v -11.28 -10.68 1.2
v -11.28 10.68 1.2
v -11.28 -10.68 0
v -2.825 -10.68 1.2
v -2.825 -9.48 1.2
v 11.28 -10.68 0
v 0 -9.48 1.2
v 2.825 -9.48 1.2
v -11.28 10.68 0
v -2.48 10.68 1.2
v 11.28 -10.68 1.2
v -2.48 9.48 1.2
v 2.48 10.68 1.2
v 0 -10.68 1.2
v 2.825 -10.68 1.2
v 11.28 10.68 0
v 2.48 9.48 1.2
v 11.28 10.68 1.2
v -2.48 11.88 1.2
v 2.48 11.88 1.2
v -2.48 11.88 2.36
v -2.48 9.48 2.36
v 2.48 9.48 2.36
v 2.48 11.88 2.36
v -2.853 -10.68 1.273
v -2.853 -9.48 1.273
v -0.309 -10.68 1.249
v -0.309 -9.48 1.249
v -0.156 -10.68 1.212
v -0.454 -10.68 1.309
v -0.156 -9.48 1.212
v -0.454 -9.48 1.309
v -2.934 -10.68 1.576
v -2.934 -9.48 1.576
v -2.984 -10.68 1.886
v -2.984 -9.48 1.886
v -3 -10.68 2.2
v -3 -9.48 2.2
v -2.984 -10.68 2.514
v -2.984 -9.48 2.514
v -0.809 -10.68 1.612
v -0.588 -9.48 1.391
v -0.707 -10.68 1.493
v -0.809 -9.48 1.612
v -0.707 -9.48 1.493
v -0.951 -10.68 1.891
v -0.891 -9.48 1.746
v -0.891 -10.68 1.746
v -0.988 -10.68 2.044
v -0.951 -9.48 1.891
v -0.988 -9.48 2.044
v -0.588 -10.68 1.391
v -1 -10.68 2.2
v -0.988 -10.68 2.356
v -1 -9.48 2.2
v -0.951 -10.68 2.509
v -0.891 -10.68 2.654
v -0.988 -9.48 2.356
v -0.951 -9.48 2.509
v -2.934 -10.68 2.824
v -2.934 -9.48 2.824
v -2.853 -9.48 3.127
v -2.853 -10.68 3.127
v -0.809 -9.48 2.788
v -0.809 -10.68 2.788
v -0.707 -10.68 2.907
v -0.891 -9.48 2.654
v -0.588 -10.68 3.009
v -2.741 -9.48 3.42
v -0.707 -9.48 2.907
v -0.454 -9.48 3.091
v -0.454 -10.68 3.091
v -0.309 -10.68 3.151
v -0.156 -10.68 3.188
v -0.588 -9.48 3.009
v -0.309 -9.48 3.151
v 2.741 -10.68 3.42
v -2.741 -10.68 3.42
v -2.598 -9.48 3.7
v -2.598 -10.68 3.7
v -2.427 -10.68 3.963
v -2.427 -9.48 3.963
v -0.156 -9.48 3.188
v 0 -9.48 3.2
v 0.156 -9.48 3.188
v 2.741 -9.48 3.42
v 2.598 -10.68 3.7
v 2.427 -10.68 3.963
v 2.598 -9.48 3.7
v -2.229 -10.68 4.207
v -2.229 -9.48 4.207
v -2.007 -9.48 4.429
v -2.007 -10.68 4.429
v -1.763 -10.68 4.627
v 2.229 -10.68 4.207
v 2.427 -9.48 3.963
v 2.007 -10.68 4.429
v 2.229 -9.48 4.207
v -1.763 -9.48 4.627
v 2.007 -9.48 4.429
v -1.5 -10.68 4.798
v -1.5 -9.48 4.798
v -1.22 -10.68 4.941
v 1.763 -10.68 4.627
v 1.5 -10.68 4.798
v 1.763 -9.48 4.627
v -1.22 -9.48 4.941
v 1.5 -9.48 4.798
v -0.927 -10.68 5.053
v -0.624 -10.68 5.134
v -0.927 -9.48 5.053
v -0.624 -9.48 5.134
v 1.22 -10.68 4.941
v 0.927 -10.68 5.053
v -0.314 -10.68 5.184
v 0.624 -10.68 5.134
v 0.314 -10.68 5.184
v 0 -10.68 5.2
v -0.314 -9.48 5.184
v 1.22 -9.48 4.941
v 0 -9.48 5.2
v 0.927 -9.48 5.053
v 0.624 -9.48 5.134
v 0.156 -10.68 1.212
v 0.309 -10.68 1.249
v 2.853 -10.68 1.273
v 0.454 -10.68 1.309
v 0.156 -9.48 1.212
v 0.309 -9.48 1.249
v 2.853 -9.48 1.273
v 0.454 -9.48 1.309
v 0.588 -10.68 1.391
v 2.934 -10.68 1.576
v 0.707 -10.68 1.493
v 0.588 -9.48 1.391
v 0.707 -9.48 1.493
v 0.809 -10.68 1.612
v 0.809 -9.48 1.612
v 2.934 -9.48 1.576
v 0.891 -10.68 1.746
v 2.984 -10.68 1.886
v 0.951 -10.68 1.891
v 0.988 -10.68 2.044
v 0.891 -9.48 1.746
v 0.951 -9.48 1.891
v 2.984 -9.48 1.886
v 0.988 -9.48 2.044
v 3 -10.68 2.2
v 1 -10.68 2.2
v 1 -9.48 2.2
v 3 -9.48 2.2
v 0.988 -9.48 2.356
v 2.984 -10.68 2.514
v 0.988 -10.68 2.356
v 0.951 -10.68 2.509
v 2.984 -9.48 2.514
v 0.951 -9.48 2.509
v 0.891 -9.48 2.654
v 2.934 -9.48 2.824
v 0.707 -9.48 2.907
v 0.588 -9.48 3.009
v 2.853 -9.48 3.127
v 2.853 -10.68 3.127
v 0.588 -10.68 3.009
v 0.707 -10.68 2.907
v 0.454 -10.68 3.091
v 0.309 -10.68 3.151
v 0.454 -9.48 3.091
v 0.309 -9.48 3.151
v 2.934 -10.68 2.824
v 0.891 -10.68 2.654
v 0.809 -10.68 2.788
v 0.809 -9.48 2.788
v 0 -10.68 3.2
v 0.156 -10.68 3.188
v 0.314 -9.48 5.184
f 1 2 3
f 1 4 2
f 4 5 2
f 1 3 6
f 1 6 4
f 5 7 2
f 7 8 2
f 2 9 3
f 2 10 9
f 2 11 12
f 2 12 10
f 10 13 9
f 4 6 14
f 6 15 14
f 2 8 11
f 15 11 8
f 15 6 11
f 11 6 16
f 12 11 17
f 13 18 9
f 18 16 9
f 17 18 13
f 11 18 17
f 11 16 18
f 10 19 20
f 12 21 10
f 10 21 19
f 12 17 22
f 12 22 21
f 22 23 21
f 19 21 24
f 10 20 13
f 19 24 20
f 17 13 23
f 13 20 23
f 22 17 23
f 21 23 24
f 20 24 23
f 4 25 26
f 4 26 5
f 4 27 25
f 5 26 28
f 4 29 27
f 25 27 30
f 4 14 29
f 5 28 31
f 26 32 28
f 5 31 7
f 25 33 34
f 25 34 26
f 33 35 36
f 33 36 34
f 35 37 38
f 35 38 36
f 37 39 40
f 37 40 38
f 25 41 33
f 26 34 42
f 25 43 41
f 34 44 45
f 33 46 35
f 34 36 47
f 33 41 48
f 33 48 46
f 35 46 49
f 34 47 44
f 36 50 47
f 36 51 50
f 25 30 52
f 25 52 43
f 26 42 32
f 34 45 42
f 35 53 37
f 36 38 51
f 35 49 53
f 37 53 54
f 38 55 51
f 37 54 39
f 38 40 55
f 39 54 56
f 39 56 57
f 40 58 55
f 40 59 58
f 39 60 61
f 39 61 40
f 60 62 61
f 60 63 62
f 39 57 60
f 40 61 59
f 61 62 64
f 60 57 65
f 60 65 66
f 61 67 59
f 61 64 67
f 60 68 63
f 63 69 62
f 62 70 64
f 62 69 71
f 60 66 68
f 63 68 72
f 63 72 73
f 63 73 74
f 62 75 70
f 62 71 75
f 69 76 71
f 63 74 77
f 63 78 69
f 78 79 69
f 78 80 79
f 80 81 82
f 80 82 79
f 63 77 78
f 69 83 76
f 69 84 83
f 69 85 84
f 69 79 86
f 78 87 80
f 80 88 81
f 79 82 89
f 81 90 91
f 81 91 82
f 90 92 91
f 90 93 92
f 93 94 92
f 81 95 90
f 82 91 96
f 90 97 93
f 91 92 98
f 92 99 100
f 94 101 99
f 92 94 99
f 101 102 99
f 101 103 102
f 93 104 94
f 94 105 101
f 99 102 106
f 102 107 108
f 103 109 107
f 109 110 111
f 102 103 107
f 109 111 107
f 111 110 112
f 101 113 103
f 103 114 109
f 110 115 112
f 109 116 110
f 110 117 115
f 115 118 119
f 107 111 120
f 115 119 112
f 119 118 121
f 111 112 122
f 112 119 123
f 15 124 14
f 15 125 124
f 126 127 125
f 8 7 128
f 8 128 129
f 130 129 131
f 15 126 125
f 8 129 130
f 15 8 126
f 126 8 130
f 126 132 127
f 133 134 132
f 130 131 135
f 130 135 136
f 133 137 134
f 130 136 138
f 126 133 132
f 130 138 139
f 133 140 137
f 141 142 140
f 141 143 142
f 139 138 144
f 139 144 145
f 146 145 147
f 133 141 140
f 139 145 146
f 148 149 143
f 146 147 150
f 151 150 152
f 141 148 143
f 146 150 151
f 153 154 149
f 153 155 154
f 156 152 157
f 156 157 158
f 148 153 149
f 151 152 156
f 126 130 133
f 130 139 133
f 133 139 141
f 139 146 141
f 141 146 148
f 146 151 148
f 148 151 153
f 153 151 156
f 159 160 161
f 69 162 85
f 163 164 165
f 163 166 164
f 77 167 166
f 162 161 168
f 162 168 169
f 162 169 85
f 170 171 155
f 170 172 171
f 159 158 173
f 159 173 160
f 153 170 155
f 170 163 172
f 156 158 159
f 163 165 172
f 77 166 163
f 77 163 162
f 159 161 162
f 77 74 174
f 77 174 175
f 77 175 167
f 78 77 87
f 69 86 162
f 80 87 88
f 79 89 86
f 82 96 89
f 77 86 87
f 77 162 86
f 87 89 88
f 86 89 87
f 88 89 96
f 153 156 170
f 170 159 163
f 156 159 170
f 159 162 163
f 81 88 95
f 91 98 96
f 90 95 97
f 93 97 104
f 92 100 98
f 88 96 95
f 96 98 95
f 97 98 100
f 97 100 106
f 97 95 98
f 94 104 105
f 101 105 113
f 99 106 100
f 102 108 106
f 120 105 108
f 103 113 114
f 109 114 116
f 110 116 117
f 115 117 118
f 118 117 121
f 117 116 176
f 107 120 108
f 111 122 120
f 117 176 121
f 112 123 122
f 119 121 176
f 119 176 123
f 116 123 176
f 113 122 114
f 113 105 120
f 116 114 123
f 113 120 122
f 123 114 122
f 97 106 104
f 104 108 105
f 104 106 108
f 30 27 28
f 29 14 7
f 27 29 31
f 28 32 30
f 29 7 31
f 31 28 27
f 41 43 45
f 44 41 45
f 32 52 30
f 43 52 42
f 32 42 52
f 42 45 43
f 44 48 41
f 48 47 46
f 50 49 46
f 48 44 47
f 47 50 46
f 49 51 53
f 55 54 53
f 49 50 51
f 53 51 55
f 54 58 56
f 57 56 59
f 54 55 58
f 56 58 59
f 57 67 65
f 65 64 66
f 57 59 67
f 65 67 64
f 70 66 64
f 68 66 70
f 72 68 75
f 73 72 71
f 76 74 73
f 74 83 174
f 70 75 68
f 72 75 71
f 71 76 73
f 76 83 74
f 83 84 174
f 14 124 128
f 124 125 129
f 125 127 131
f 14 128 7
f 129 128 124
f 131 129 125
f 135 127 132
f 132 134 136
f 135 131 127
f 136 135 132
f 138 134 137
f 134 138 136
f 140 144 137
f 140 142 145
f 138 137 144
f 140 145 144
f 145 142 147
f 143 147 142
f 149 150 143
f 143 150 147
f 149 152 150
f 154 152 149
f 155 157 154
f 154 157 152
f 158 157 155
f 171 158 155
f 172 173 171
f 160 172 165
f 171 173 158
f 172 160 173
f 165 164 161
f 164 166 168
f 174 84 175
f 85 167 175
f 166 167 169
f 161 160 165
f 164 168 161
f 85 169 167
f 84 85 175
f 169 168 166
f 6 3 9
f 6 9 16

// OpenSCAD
// ============================================================
// 하우징 ERM v2 - housing_erm_closure1_v2 (4번째 사진, 별도 부품)
// ============================================================

module housing_erm_closure1_v2() {
    plate_w = 22.56; // 가로
    plate_h = 21.36; // 세로
    plate_t = 1.2;   // 판재 두께

    // 돌출 직육면체: 가로 4.96mm, 높이(Z) 1.16mm.
    // 세로(Y)는 +Y쪽 가장자리 기준으로 면 위에 1.2mm + 바깥으로 1.2mm = 총 2.4mm
    tab_w        = 4.96; // 가로
    tab_protrude = 1.2;  // 3D 기준 +Y 방향으로 면 바깥으로 튀어나오는 길이
    tab_overlap  = 1.2;  // 면 위에 걸쳐있는 길이 (+Y쪽 가장자리에서 안쪽으로)
    tab_len      = tab_protrude + tab_overlap; // 세로 전체 길이 (2.4mm)
    tab_z        = 1.16; // 돌출부가 판재 위로 추가로 튀어나오는 두께(높이)

    // -Y쪽 나사 보스: 구멍은 Y축 방향으로 관통, X는 정중앙(0).
    // 안쪽 구멍 지름 2mm, 둘러싼 두께 2mm -> 바깥지름 6mm. 가장자리에서 안쪽으로 1.2mm.
    boss_screw_d = 2;
    boss_wall_t  = 2;
    boss_d       = boss_screw_d + 2 * boss_wall_t; // 6mm
    boss_len     = 1.2; // -Y 가장자리에서 안쪽(+Y)으로 들어간 길이
    boss_z       = plate_t + boss_d / 2 - 2; // 구멍 중심 기준 Z축 음수 방향으로 2mm 내림

    echo("[Closure1] tab_w =", tab_w, " tab_len =", tab_len, " tab_z =", tab_z);
    echo("[Closure1] boss_d =", boss_d, " boss_len =", boss_len);

    difference() {
        union() {
            // 메인 평판
            color("gray")
                linear_extrude(height = plate_t)
                    square([plate_w, plate_h], center = true);

            // 돌출 직육면체 (4.96mm x 2.4mm x 1.16mm). +Y쪽 가장자리를 기준으로
            // 안쪽(면 위)으로 1.2mm, 바깥쪽(3D +Y 방향)으로 1.2mm 걸쳐 있음.
            color("SteelBlue")
                translate([0, plate_h / 2 - tab_overlap + tab_len / 2, plate_t])
                    linear_extrude(height = tab_z)
                        square([tab_w, tab_len], center = true);

            // -Y쪽 나사 보스 (바깥지름 6mm), 가장자리에서 안쪽으로 1.2mm
            color("SteelBlue")
                translate([0, -plate_h / 2 + boss_len, boss_z])
                    rotate([90, 0, 0])
                        cylinder(d = boss_d, h = boss_len, $fn = 60);
        }

        // 나사 구멍 (Y방향 관통, 보스를 지나 여유 있게)
        translate([0, -plate_h / 2 + boss_len + 0.1, boss_z])
            rotate([90, 0, 0])
                cylinder(d = boss_screw_d, h = boss_len + 0.2, $fn = 40);

        // 보스가 판재 아래(z<0)로 튀어나온 부분 제거
        translate([-plate_w, -plate_h, -100])
            cube([plate_w * 2, plate_h * 2, 100]);
    }
}

housing_erm_closure1_v2();
